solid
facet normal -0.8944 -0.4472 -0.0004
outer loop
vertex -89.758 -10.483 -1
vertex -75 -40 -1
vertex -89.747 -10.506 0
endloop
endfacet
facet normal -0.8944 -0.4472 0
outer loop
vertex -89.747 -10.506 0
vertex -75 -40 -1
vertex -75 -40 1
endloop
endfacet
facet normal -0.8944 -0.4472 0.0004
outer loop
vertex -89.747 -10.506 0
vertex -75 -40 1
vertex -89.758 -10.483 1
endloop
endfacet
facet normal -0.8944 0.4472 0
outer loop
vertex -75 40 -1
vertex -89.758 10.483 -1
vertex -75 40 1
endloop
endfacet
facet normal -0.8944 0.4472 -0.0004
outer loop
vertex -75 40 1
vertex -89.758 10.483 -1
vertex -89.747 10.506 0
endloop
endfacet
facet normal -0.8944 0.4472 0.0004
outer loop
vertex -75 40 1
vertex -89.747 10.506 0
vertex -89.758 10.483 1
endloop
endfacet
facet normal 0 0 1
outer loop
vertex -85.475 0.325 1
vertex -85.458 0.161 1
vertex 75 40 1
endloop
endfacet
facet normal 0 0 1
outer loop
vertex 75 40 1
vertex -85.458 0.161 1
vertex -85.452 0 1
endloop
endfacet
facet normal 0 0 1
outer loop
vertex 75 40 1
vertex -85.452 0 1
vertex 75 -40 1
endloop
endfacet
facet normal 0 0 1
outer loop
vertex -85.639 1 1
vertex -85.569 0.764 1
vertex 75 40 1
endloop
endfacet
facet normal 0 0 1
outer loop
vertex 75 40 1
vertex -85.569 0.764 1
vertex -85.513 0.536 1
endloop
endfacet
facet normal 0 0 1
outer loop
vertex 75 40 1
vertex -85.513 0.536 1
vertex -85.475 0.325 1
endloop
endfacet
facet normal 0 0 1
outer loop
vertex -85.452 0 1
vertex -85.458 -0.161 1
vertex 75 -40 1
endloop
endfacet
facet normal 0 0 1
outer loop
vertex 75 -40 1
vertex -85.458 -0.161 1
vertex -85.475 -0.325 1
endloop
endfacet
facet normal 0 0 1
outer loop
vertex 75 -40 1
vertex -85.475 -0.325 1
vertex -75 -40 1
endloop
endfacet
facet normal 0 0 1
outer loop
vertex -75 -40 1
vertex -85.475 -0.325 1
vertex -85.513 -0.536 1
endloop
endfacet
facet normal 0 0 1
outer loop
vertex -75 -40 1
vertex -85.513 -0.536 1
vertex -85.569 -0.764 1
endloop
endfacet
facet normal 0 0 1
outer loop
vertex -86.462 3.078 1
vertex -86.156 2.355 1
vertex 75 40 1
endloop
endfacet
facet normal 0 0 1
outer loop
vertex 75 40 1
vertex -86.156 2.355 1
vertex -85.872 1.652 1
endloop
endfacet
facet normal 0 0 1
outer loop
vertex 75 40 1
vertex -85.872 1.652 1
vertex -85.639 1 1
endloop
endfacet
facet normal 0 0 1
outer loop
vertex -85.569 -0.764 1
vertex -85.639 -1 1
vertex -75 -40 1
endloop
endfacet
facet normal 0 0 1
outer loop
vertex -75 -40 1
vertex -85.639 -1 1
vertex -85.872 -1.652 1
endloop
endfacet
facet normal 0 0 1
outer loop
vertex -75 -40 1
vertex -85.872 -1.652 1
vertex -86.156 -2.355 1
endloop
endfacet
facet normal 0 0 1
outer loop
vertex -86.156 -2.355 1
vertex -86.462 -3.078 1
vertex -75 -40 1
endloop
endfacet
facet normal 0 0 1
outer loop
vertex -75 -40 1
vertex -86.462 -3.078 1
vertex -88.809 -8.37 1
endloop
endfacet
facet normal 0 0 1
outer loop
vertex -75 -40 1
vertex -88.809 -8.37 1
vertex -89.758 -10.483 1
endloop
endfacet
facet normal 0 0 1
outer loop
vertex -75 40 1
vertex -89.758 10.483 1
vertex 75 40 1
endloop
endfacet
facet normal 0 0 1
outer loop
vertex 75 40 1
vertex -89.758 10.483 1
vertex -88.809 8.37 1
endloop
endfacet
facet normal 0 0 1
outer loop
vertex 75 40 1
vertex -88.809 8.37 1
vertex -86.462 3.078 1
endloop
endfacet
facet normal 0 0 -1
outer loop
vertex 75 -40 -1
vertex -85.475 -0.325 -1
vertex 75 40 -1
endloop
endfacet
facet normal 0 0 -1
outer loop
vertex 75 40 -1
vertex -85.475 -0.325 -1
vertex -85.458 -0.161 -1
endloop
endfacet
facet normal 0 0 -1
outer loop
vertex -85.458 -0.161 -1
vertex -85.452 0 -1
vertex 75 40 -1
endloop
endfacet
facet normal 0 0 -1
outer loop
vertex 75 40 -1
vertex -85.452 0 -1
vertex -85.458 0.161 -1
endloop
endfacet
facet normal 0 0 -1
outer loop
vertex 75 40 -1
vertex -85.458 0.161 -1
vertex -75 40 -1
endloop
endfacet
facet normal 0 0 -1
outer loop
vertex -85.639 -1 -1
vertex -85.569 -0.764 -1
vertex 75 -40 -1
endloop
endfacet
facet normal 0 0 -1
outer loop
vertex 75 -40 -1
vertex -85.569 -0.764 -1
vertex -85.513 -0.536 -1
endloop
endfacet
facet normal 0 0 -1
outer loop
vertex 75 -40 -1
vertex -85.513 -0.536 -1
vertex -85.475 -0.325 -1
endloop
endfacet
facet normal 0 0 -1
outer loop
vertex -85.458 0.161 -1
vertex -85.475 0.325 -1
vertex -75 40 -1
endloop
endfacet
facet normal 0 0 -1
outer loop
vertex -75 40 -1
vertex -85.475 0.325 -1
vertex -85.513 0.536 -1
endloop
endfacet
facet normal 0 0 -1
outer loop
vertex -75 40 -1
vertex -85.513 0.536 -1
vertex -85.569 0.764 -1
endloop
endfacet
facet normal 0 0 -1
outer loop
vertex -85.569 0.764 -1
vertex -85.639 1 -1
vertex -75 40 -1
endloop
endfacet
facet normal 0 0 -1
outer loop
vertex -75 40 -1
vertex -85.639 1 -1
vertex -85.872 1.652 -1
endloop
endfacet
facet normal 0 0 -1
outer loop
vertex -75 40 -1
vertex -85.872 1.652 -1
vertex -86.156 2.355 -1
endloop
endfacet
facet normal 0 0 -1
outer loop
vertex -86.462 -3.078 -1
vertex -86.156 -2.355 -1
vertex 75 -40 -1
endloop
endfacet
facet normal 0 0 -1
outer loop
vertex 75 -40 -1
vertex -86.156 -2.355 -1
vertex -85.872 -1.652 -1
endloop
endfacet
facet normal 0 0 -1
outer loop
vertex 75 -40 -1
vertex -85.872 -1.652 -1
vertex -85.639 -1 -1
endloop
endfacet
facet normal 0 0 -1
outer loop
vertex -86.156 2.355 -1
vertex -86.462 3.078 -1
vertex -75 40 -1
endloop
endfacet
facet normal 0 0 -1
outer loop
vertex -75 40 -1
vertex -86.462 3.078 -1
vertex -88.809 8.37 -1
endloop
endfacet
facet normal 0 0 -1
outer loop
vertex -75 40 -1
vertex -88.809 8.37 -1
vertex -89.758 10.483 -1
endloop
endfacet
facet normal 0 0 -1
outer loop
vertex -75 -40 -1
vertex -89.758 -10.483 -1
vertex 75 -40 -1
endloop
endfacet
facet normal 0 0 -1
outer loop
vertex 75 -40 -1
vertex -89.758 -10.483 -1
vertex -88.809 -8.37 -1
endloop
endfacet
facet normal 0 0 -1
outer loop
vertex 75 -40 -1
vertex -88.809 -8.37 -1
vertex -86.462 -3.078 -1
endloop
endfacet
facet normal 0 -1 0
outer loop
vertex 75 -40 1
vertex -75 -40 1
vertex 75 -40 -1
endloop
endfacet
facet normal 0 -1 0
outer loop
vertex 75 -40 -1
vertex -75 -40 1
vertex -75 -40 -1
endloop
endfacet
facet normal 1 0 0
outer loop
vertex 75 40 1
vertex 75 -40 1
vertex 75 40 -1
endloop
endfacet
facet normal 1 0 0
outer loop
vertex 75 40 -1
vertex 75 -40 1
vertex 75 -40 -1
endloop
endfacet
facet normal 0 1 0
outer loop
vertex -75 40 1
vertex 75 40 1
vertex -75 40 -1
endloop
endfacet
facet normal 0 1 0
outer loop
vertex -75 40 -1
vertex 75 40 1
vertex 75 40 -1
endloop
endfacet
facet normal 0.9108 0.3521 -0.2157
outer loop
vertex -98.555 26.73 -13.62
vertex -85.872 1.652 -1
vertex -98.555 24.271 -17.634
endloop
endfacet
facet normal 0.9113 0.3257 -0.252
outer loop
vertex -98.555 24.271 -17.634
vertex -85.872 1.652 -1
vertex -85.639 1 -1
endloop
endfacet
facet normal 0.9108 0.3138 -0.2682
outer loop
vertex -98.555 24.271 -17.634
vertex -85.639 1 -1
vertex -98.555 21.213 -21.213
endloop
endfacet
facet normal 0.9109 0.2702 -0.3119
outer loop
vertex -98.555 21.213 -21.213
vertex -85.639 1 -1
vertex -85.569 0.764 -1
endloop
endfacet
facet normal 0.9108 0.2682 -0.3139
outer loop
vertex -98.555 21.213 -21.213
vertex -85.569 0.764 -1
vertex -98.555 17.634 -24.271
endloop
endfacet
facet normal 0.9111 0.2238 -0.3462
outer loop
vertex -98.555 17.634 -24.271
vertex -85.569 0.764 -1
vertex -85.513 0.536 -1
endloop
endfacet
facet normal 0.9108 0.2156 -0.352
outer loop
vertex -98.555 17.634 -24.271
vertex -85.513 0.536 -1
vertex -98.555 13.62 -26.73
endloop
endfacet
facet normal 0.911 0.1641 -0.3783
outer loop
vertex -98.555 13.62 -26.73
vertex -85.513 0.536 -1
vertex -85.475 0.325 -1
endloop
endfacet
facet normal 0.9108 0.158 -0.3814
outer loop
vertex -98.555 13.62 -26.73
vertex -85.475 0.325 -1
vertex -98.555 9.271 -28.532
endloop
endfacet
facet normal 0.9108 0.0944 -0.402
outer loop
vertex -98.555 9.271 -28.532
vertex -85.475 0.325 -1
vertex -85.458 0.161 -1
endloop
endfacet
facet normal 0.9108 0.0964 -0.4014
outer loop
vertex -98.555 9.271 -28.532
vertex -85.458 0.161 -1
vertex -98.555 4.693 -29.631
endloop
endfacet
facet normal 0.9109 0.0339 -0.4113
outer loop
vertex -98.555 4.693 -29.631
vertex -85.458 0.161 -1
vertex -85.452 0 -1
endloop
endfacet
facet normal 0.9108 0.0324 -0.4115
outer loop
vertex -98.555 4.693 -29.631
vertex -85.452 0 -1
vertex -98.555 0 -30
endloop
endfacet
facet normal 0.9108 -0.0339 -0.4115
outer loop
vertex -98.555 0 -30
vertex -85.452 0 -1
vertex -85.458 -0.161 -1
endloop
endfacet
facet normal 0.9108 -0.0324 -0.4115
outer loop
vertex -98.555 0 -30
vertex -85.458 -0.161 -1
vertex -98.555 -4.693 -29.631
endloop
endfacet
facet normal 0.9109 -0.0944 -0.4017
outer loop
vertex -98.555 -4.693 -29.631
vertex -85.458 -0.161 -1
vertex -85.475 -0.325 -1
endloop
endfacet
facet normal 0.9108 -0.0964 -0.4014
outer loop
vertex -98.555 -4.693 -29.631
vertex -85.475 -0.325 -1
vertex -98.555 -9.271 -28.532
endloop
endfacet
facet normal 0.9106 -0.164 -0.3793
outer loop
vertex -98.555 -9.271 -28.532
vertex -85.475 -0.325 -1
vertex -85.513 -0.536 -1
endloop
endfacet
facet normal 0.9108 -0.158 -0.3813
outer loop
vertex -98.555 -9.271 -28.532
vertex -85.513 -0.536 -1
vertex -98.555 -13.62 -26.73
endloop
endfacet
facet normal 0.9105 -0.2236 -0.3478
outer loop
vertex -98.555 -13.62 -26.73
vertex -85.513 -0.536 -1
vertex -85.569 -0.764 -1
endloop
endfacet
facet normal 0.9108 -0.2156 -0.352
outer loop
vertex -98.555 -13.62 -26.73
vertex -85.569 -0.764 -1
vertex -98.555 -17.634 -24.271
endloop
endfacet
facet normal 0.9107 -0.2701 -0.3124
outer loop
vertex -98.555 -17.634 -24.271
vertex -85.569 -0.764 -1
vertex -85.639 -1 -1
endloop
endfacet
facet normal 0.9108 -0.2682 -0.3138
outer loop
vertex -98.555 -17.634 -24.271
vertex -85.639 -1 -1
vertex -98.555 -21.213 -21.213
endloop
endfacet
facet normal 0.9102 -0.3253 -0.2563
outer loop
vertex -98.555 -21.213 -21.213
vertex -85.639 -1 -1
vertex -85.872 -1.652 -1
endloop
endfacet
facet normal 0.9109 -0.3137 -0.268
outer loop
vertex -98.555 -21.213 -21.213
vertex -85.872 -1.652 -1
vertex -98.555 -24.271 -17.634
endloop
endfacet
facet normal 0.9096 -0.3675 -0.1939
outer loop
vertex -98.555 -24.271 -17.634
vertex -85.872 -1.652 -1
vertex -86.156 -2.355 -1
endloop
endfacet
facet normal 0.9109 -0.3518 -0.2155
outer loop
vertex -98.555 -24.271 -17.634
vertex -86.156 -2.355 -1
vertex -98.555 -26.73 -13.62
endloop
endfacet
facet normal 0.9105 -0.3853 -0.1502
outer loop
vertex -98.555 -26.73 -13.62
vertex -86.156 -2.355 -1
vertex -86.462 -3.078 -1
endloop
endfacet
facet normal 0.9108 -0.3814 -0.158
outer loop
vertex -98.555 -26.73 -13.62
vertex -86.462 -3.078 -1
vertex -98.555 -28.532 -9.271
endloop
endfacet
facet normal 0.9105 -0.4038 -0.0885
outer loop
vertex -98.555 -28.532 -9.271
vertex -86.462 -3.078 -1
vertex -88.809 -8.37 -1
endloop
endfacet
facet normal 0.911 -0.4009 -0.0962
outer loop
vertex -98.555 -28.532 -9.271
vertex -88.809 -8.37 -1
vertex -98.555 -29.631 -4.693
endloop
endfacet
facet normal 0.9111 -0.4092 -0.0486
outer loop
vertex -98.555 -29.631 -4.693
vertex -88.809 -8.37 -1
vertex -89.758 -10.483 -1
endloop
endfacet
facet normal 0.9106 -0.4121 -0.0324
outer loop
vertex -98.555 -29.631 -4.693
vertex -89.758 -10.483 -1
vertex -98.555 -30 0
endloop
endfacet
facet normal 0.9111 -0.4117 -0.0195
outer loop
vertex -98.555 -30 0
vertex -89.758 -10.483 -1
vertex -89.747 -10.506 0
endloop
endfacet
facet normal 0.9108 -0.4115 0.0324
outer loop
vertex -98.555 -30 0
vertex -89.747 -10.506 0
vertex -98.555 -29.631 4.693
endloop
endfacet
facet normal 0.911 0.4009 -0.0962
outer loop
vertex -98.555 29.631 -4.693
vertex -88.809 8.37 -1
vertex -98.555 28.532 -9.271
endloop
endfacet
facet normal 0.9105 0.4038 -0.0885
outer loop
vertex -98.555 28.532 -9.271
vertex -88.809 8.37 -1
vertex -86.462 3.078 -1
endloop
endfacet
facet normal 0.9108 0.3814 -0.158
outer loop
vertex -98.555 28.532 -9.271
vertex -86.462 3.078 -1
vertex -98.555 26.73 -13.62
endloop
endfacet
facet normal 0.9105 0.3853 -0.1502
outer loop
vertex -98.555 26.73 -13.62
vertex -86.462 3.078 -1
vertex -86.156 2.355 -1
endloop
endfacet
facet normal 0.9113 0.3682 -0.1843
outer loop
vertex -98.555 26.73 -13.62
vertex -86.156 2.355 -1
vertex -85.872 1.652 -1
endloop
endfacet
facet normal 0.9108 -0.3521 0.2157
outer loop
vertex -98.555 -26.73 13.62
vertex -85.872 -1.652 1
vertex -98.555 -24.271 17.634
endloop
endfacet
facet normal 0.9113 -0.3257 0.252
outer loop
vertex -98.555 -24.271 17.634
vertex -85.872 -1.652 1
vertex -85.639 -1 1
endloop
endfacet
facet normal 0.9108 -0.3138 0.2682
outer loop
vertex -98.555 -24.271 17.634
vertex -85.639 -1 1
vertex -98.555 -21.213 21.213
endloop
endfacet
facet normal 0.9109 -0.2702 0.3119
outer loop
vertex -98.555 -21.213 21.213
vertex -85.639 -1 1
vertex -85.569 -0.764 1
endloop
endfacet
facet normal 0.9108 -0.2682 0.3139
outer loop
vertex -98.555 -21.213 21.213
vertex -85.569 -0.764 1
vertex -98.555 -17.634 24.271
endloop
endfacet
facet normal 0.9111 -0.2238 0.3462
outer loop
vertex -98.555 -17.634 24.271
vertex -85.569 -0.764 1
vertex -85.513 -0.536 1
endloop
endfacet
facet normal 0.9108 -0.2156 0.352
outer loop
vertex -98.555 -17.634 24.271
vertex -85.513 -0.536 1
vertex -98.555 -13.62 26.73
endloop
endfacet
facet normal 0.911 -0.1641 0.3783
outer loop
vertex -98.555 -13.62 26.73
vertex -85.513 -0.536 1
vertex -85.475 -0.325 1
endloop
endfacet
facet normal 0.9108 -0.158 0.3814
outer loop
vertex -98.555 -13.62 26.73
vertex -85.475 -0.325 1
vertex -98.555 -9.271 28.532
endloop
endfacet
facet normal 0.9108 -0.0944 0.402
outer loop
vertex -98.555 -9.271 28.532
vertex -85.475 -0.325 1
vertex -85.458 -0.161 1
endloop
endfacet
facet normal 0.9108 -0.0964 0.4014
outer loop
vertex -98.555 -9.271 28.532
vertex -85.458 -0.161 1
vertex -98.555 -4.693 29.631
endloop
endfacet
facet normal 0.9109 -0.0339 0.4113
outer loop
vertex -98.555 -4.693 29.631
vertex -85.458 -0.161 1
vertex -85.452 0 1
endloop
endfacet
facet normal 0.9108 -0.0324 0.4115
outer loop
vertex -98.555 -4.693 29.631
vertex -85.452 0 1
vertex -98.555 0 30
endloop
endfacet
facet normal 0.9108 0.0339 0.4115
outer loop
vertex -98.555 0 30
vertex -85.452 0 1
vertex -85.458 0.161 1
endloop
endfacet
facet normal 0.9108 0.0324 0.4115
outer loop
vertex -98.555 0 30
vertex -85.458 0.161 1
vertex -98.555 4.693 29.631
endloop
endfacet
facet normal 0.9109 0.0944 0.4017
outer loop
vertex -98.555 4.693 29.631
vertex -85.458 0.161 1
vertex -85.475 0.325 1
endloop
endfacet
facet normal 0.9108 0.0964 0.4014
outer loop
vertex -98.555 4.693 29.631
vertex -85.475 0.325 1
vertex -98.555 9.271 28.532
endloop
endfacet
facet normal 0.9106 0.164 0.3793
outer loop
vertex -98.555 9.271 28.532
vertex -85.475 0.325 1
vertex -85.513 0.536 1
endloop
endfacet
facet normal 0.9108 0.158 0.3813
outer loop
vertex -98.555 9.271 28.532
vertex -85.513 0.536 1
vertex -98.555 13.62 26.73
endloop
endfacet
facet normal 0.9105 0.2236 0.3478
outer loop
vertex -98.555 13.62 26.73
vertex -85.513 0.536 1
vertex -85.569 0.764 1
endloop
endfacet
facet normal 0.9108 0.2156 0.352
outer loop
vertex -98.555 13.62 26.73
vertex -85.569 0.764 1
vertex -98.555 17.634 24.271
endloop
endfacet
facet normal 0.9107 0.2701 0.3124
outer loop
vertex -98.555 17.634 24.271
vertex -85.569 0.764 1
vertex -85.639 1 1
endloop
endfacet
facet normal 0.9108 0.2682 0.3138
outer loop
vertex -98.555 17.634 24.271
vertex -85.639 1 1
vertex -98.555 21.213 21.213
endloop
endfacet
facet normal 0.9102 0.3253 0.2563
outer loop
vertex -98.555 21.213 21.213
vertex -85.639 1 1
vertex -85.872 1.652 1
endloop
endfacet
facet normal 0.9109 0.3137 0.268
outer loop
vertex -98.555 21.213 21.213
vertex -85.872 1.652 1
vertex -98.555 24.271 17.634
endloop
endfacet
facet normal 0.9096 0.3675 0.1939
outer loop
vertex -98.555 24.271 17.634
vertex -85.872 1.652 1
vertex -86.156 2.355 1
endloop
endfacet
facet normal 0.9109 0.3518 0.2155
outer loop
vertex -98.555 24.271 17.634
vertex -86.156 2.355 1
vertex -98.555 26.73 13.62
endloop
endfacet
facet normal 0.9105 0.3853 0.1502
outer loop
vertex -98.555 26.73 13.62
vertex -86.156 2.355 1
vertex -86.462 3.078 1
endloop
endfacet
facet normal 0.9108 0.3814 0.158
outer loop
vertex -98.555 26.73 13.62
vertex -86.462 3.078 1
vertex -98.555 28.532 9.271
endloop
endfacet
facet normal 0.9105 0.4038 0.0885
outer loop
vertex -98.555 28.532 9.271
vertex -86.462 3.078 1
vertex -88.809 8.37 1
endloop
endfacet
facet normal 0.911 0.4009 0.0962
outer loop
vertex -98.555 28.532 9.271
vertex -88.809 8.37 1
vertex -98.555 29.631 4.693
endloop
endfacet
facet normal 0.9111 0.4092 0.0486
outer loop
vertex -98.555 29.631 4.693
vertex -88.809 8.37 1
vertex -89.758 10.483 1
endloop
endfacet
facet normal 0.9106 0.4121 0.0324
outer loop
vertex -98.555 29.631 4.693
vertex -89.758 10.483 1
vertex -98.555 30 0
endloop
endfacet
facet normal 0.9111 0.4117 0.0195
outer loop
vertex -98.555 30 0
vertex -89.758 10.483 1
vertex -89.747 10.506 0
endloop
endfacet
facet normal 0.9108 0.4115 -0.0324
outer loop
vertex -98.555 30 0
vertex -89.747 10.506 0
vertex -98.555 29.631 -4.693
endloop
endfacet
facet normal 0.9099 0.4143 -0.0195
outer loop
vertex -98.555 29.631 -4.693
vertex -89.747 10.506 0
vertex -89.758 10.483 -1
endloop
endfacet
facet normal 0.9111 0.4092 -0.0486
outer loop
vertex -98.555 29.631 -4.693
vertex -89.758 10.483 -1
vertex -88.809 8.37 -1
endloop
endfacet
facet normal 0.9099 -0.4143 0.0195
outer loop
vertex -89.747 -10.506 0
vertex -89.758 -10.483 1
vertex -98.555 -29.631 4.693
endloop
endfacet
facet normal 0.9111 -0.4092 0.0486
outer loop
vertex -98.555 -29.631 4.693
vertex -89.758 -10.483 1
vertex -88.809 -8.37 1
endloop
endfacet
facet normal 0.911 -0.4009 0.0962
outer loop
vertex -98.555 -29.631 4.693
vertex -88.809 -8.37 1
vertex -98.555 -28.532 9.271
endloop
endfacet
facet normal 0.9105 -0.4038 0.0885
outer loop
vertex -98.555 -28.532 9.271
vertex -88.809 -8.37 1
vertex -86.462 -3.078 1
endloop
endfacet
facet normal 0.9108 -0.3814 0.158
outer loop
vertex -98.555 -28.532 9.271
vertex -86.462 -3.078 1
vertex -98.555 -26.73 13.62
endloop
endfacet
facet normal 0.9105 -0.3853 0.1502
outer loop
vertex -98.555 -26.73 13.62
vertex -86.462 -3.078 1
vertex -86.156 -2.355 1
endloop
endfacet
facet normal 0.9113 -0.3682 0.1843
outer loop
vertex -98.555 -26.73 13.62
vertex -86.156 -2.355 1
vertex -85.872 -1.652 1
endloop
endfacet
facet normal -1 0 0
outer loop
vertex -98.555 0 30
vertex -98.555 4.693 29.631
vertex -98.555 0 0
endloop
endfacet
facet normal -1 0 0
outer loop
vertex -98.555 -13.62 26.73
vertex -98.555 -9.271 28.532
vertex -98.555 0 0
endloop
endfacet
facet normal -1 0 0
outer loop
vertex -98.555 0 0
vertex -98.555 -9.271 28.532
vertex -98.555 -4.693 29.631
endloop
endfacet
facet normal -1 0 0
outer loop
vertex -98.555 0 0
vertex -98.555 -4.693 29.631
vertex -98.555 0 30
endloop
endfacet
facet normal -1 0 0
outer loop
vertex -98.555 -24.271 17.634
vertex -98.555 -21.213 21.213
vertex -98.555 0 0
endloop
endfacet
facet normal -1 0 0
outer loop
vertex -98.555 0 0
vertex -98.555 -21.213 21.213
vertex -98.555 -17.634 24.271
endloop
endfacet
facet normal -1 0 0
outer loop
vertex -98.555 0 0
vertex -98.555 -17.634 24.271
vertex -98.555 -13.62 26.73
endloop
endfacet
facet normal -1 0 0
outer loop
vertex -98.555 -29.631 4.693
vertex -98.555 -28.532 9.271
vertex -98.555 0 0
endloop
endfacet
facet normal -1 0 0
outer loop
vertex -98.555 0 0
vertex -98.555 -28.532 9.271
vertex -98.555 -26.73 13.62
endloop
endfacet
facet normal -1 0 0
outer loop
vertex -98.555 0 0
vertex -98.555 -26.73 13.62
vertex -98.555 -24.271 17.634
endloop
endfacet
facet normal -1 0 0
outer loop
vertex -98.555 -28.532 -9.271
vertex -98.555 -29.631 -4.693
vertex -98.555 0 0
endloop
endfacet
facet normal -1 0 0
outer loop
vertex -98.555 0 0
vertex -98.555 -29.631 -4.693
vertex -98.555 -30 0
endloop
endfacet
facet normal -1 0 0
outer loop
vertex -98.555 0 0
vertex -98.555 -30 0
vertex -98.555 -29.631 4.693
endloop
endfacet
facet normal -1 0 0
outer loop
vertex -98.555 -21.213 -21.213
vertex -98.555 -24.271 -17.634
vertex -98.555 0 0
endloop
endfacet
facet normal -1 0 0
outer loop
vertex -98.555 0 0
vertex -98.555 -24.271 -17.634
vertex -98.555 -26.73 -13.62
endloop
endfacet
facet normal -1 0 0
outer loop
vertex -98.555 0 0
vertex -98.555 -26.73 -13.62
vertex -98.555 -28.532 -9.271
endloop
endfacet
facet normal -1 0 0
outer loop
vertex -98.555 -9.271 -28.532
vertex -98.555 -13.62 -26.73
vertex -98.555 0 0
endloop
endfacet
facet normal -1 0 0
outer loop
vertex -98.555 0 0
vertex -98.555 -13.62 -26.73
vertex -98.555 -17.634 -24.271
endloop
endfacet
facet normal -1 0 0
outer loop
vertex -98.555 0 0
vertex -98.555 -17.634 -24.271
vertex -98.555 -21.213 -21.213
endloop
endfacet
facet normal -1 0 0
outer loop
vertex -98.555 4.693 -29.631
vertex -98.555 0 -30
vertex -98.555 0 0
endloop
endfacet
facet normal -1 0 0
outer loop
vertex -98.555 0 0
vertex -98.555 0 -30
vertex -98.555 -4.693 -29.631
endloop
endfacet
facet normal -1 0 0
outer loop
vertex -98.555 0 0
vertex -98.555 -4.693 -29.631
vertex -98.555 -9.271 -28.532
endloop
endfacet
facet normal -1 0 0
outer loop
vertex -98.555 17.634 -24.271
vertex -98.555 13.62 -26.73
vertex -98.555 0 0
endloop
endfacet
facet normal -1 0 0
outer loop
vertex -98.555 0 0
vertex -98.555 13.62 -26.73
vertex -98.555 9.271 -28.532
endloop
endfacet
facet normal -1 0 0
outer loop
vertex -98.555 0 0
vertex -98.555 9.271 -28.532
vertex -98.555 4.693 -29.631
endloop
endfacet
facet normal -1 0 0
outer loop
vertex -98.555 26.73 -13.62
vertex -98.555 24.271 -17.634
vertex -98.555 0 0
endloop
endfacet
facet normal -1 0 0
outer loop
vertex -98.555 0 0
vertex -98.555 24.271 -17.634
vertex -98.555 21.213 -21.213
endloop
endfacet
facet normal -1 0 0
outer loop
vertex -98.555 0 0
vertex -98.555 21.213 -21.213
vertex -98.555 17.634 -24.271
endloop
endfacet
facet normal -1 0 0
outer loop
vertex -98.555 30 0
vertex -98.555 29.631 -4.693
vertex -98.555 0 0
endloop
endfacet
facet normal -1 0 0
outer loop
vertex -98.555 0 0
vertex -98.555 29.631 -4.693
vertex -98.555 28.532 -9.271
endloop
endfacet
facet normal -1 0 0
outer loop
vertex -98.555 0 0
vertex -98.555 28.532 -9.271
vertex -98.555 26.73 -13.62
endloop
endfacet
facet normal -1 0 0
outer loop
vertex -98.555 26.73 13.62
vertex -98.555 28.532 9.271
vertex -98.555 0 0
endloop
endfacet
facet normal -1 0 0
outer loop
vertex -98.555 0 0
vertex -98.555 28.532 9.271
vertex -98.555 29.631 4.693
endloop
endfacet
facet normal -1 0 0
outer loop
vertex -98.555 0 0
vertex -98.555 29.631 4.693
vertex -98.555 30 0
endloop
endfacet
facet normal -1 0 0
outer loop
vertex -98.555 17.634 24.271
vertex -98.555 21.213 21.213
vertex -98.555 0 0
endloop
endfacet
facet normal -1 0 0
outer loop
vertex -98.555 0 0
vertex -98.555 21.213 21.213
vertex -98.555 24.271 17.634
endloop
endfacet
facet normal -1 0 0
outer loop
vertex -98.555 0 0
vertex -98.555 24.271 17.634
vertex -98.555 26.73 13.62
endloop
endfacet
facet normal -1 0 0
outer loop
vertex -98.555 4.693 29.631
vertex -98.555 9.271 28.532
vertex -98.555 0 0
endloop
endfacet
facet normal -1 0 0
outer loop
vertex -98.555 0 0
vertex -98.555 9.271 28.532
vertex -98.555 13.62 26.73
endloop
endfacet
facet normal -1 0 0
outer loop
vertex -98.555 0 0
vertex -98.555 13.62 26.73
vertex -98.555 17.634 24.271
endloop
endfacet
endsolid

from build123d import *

# Parameters (mm, degrees)
EXTRUDE_2_DEPTH = 1


with BuildPart() as part:
    # 草图2 → 凸台-拉伸2 (new, symmetric)
    with BuildSketch(Plane.XY):
        Polygon((-75, 40), (75, 40), (75, -40), (-75, -40), (-95, 0), align=None)
    extrude(amount=EXTRUDE_2_DEPTH, both=True)

    # 草图2<5> → 旋转5 (revolve)
    with BuildSketch(Plane.XY):
        Polygon((-85, 0), (-98.554984954, 30), (-98.554984954, 0), align=None)
    revolve(axis=Axis((-1003.811687892, 0, 0), (1, 0, 0)))


solid = part.part
